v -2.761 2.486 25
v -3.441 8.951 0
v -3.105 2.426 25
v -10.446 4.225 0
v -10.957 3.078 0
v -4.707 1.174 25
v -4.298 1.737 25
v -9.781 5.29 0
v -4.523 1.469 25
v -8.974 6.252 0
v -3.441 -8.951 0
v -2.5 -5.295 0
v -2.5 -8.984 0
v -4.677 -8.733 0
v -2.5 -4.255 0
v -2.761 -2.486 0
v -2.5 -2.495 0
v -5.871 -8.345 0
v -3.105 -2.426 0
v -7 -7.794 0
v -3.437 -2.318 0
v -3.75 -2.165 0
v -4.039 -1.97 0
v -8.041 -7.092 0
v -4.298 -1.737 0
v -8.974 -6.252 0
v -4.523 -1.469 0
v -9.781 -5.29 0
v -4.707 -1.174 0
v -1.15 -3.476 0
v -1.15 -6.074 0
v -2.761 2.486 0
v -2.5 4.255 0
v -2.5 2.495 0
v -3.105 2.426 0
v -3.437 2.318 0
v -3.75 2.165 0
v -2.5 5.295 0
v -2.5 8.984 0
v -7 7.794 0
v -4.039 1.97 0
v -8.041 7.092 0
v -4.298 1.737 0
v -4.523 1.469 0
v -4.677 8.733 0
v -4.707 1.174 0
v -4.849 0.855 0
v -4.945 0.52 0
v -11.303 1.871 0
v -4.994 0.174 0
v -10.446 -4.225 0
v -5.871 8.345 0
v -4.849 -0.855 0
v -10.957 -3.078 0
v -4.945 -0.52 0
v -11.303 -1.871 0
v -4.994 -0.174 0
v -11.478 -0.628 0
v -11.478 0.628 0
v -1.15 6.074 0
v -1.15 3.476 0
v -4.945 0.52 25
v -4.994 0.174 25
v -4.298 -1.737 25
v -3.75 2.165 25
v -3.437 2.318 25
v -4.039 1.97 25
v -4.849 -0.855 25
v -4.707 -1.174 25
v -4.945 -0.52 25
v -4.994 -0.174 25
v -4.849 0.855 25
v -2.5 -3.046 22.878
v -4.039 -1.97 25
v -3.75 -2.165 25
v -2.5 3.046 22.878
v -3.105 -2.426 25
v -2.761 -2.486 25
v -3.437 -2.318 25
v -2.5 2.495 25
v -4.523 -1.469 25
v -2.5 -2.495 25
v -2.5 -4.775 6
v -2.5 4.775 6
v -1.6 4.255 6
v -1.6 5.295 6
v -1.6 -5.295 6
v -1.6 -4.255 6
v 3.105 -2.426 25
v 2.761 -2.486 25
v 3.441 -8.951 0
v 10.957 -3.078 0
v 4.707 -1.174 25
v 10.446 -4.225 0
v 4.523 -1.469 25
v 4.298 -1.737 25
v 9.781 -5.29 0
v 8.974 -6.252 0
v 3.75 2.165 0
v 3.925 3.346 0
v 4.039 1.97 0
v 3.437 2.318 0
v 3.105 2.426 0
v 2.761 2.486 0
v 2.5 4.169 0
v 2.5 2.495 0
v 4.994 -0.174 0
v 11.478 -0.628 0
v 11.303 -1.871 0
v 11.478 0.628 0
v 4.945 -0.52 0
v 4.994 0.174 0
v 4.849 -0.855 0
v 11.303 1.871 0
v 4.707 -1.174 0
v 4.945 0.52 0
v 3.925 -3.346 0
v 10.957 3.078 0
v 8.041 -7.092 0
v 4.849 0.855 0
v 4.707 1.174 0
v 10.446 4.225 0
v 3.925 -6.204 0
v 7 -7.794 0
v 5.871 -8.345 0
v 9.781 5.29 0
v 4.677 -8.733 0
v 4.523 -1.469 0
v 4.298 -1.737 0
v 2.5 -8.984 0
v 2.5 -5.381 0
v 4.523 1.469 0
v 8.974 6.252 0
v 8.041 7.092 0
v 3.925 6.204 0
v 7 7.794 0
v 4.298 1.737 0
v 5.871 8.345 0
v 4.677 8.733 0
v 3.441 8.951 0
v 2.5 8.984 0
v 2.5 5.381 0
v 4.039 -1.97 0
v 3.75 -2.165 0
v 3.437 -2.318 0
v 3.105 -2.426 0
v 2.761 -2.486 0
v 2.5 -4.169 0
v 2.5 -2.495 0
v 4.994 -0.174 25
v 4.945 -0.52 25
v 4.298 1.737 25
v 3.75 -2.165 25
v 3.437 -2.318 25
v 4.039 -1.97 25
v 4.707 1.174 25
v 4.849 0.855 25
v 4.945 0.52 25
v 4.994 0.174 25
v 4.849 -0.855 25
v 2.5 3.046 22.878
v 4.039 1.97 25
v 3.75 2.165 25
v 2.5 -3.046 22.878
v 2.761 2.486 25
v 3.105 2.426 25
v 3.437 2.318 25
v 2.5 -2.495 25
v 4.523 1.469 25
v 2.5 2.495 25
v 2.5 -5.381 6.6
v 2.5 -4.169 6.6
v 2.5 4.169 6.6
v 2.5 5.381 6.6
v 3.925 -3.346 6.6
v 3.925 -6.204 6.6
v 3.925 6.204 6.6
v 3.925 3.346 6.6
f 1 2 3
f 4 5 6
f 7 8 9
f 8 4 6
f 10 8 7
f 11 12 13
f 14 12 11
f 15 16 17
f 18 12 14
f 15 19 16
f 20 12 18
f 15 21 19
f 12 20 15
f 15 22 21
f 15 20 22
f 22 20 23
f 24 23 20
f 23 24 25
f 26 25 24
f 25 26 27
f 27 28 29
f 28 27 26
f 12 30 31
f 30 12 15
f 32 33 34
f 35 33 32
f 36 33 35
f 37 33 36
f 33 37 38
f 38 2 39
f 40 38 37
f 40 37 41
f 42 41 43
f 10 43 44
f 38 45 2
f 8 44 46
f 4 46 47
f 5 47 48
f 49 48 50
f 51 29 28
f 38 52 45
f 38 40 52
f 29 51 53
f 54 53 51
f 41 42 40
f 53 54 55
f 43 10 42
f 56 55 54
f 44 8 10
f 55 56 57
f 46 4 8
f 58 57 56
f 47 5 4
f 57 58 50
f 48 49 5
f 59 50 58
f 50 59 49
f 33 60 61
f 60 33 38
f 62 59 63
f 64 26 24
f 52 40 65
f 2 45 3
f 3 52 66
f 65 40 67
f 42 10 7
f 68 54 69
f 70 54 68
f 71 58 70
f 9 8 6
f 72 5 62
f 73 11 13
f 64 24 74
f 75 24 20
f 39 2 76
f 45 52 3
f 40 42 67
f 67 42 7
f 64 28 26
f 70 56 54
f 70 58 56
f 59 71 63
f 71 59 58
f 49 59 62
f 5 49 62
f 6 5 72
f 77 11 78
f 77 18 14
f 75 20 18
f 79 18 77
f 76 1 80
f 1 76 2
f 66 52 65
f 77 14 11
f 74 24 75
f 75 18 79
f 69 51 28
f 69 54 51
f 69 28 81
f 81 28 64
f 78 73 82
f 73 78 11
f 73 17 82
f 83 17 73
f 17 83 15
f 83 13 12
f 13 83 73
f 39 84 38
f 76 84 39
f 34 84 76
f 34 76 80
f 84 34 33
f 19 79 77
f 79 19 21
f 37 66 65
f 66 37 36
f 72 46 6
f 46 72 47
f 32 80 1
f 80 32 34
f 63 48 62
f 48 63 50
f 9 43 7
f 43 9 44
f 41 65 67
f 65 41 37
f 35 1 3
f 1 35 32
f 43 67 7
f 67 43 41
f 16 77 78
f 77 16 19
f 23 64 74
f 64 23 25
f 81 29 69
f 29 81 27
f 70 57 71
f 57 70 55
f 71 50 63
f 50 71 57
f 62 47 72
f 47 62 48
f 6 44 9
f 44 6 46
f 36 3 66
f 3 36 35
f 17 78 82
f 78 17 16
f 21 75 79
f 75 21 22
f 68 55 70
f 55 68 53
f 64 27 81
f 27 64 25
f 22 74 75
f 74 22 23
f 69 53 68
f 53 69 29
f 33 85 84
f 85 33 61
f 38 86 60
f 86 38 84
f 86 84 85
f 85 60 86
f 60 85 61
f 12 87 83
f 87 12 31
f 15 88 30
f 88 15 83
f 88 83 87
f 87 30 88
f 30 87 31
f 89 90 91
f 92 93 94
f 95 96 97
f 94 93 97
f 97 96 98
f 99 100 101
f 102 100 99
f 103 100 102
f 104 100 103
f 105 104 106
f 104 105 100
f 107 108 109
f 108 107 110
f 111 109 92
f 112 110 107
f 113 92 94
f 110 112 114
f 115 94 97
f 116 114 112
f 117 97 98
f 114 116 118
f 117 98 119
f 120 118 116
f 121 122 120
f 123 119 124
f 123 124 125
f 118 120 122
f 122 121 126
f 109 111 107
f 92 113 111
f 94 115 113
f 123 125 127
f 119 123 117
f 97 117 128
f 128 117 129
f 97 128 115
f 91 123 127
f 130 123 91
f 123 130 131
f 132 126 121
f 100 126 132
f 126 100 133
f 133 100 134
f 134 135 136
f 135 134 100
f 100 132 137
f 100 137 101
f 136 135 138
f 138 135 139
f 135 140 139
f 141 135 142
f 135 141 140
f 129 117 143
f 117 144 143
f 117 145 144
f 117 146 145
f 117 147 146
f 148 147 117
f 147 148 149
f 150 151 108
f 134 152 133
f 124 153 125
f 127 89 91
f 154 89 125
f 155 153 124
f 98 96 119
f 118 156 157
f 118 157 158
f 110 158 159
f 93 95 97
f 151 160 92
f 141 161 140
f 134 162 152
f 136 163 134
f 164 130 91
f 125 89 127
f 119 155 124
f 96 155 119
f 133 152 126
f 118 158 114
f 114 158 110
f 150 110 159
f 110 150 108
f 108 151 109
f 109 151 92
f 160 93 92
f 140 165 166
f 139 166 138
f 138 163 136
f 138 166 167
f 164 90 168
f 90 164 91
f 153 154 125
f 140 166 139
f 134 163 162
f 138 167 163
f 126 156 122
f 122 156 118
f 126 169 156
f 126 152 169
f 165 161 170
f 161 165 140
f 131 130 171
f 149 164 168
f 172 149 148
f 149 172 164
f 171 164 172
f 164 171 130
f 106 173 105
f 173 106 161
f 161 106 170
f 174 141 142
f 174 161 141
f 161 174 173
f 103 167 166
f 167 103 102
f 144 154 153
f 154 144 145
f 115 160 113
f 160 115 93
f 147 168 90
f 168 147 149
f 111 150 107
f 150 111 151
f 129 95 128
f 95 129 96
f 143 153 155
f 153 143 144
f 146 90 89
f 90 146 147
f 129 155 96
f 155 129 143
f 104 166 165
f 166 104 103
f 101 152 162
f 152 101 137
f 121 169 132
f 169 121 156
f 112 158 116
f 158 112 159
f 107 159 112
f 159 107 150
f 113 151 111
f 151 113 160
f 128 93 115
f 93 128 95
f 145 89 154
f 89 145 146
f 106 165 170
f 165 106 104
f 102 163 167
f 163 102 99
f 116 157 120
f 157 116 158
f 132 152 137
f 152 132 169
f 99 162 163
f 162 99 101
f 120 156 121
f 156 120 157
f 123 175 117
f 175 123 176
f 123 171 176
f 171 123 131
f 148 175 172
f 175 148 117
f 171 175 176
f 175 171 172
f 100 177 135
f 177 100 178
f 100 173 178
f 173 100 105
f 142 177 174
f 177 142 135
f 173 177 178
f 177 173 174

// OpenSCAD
// -*- mode: SCAD ; c-file-style: "ellemtel" ; coding: utf-8 -*-
//
// Cable cone
//
// © 2017 Roland Sieker <ospalh@gmail.com>
// Licence: CC-BY-SA 4.0

ru = 18/2;
/* ro = 4.3/2; */
ro = 5/2;

h = 25;

ccr = 1.5;
ccr_o = 0.6;
cch = 6;
ccf = 0.4;
ccof = 0.35;

wf = 1.1;
ms = 0.01;


translate([-2.5, 0, 0])
{
   hcl();
}
translate([2.5, 0, 0])
{
   rotate(180)
   {
      hcr();
   }
}

module hcl()
{
   hc();
   translate([ccr*ccf, ro+ccof*(ru-ro), 0])
   {
      rotate(180)
      {
         cylinder(r1=ccr, r2=ccr_o, h=cch, $fn=3);
      }
   }
   translate([ccr*ccf, -ro-ccof*(ru-ro), 0])
   {
      rotate(180)
      {
         cylinder(r1=ccr, r2=ccr_o, h=cch, $fn=3);
      }
   }
}

module hcr()
{
   difference()
   {
      hc();
      translate([-ccr*ccf, ro+ccof*(ru-ro), -ms])
      {
         cylinder(r=ccr*wf, h=cch*wf+ms, $fn=3);
      }
      translate([-ccr*ccf, -ro-ccof*(ru-ro), -ms])
      {
         cylinder(r=ccr*wf, h=cch*wf+ms, $fn=3);
      }
   }
}

module hc()
{
   difference()
   {
      cylinder(r1=ru, h=h, r2=ro, $fn=45);
      translate([0, -ru-ms, -ms])
      {
         cube([ru+ms, 2*ru+2*ms, h+2*ms]);
      }
      translate([0,0,-ms])
      cylinder(r=ro, h=h+2*ms, $fn=45);
   }
}
